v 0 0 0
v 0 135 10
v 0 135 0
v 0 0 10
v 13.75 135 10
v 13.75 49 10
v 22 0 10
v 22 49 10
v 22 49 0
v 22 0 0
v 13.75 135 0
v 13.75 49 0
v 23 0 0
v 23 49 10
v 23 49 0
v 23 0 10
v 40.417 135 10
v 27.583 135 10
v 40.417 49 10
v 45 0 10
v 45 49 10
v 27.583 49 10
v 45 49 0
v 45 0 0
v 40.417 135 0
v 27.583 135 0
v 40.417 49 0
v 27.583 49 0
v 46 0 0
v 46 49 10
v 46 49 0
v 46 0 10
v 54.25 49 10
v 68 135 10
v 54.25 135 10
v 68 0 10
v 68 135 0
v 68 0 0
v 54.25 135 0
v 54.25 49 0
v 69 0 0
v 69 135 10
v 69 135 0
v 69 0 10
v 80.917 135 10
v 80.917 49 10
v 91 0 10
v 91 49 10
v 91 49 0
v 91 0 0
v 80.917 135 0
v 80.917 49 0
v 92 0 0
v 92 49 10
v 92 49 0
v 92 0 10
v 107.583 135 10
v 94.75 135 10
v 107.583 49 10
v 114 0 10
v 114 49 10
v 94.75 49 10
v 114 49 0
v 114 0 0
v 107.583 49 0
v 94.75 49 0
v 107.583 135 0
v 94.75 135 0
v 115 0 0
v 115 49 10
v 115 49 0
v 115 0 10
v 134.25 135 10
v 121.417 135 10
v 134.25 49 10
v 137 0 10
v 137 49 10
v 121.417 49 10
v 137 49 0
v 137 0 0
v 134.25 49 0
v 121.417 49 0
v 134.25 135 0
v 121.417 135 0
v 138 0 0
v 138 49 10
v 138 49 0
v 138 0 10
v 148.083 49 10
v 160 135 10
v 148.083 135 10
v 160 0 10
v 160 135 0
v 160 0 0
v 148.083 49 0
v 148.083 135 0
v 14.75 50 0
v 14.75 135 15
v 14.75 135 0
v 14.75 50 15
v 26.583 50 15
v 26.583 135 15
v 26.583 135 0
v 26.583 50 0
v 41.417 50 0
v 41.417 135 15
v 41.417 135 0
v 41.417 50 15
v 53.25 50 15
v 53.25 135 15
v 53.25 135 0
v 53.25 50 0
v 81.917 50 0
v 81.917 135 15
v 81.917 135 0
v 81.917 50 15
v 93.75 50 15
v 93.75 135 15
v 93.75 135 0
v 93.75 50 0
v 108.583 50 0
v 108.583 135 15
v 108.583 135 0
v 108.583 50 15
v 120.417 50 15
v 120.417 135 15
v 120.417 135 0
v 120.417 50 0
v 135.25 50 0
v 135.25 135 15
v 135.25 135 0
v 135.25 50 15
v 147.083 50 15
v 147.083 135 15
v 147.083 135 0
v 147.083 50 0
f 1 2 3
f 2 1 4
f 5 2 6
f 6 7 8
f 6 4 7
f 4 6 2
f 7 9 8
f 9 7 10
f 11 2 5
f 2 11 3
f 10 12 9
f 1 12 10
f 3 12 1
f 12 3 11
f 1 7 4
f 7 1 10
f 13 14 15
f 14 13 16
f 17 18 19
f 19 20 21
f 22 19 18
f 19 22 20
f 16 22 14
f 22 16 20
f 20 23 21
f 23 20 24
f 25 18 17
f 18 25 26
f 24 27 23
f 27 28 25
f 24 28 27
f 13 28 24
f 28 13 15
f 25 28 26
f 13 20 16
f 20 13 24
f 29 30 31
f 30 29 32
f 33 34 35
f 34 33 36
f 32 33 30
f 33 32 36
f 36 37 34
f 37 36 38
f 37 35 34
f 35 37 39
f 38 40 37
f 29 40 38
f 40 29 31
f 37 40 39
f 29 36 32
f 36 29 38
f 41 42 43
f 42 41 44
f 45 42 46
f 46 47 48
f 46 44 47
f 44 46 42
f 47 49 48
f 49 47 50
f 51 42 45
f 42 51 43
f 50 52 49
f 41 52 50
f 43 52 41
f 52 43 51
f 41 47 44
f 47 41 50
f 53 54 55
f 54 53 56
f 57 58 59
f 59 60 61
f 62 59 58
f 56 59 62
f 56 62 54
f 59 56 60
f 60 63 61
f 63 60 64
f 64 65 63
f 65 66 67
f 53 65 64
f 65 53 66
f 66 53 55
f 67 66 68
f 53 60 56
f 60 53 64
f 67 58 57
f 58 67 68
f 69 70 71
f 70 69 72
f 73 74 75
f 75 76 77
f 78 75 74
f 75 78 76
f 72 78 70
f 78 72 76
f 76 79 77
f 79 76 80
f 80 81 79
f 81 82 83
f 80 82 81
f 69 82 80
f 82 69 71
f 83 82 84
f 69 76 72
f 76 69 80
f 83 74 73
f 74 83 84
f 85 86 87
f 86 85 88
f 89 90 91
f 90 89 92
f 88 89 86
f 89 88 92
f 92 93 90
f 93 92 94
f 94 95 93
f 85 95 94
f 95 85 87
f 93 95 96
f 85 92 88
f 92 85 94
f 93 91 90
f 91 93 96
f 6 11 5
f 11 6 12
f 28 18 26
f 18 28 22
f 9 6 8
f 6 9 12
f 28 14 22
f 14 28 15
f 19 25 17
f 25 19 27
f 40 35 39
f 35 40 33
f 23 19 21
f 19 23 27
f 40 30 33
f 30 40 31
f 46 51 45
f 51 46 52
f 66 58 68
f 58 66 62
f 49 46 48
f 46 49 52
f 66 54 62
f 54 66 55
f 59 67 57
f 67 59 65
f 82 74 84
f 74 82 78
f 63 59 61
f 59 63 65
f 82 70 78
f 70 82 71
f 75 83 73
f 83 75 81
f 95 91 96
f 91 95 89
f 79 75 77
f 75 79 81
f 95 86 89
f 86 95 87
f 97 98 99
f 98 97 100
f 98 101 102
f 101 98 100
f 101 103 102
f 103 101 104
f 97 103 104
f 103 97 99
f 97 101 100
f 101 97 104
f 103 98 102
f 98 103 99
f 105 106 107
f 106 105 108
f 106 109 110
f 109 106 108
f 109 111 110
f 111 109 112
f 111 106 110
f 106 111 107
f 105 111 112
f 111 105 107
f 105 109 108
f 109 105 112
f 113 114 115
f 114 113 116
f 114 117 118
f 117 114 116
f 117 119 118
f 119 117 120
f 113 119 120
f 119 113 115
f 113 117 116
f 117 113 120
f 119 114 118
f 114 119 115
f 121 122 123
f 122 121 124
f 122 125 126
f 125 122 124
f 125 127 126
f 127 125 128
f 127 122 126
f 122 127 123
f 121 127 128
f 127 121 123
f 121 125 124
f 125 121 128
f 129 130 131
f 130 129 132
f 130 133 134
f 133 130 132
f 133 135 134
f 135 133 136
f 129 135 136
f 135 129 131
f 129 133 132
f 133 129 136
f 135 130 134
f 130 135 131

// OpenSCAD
/* Piano Keyboard
 *
 * Author: Thiago Rosa (http://www.thiagorosa.com)
 * Project: KeyTita (https://github.com/thiagolr/keytita)
 * License: CC BY-SA 4.0 (https://creativecommons.org/licenses/by-sa/4.0)
 * 
 * Design: http://datagenetics.com/blog/may32016/index.html
 * 525|490|490|490|525|455|490|490|490|490|490|455
 *
 */

$WHITE_LENGTH = 135;
$WHITE_WIDTH = 22;
$WHITE_HEIGHT = 10;
$BLACK_LENGTH = 85;
$BLACK_HEIGHT = 15;
$SPACE_WIDTH = 1;
$OCTAVES = 1;
$INCLUDE_A0_B0 = false;
$INCLUDE_END_C = false;

$MIRRORED = false;
$KEY_COLOR_ALPHA = 1.0;

Piano();
//Piano61();
//Piano88();
   
module Piano(whiteLength = $WHITE_LENGTH, whiteWidth = $WHITE_WIDTH, whiteHeight = $WHITE_HEIGHT, blackLength = $BLACK_LENGTH, blackHeight = $BLACK_HEIGHT, spaceWidth = $SPACE_WIDTH, octaves = $OCTAVES, includeA0B0 = $INCLUDE_A0_B0, includeEndC = $INCLUDE_END_C) {
    
    baseWhiteWidth = 840;
    baseSizeA = 525;
    baseSizeB = 490;
    baseSizeC = 455;
    baseFactor = whiteWidth / baseWhiteWidth;
    
    sizeA = baseSizeA * baseFactor;
    sizeB = baseSizeB * baseFactor;
    sizeC = baseSizeC * baseFactor;
    sizeBSpaced = sizeB + spaceWidth;
    
    holeSizeOffset = 2;
    holeSizeX = sizeBSpaced;
    holeSizeY = blackLength + spaceWidth * 2;
    holeSizeZ = blackHeight + holeSizeOffset;     
    
    a0b0Width = includeA0B0 ? (2 * whiteWidth) + (2 * spaceWidth) : 0;
    octaveWidth = (7 * whiteWidth) + (7 * spaceWidth);
    blackWidth = sizeBSpaced - spaceWidth * 2;

    blackPositions = [
        sizeA * 1,
        sizeA * 1 + sizeB * 1 + sizeBSpaced * 1,
        sizeA * 2 + sizeB * 1 + sizeBSpaced * 2 + sizeC * 1 + spaceWidth,
        sizeA * 2 + sizeB * 2 + sizeBSpaced * 3 + sizeC * 1 + spaceWidth,
        sizeA * 2 + sizeB * 3 + sizeBSpaced * 4 + sizeC * 1 + spaceWidth
    ];
    
    difference() {
        union() {
            for (i = [0 : octaves - 1]) {
                for (j = [0 : 6]) {
                    posX = a0b0Width + i * octaveWidth + j * (whiteWidth + spaceWidth);                Key("white", posX, 0, 0, whiteWidth, whiteLength, whiteHeight);
                }            
            }      
        }
     
        for (i = [0 : octaves - 1]) {
            for (j = [0 : 4]) {
                posX = a0b0Width + i * octaveWidth + blackPositions[j];         
                posY = $MIRRORED ? -spaceWidth : whiteLength - blackLength - spaceWidth;
                posZ = -holeSizeOffset / 2;
                Key("white", posX, posY, posZ, holeSizeX, holeSizeY, holeSizeZ);  
            }
        }
    }

    for (i = [0 : octaves - 1]) {
        for (j = [0 : 4]) {
            posX = a0b0Width + i * octaveWidth + blackPositions[j] + (sizeBSpaced - blackWidth) / 2;
            posY = $MIRRORED ? 0 : whiteLength - blackLength;
            posZ = 0; 
            Key("black", posX, posY, posZ, blackWidth, blackLength, blackHeight);  
        }    
    }
    
    if (includeA0B0) {
        blackPosition = whiteWidth * 2 - sizeC - sizeBSpaced;
        
        difference() {
            union() {
                for (j = [0 : 1]) {
                    posX = j * (whiteWidth + spaceWidth);                    
                    Key("white", posX, 0, 0, whiteWidth, whiteLength, whiteHeight);
                }            
            } 
         
            posX = blackPosition;         
            posY = $MIRRORED ? -spaceWidth : whiteLength - blackLength - spaceWidth;
            posZ = -holeSizeOffset / 2;
            Key("white", posX, posY, posZ, holeSizeX, holeSizeY, holeSizeZ);              
        }
      
        posX = blackPosition + (sizeBSpaced - blackWidth) / 2;
        posY = $MIRRORED ? 0 : whiteLength - blackLength;
        posZ = 0;
        Key("black", posX, posY, posZ, blackWidth, blackLength, blackHeight);  
    }
    
    if (includeEndC) {
        posX = a0b0Width + octaves * octaveWidth; 
        Key("white", posX, 0, 0, whiteWidth, whiteLength, whiteHeight);
    }
}

module Key(colorKey, posX, posY, posZ, sizeX, sizeY, sizeZ) {
    translate([posX, posY, posZ])          
        color(colorKey, $KEY_COLOR_ALPHA)
            cube([sizeX, sizeY, sizeZ]);
}

module Piano61(whiteLength = $WHITE_LENGTH, whiteWidth = $WHITE_WIDTH, whiteHeight = $WHITE_HEIGHT, blackLength = $BLACK_LENGTH, blackHeight = $BLACK_HEIGHT, spaceWidth = $SPACE_WIDTH) {  
    
    Piano(whiteLength, whiteWidth, whiteHeight, blackLength, blackHeight, spaceWidth, octaves = 5, includeA0B0 = false, includeEndC = true);
    
}

module Piano88(whiteLength = $WHITE_LENGTH, whiteWidth = $WHITE_WIDTH, whiteHeight = $WHITE_HEIGHT, blackLength = $BLACK_LENGTH, blackHeight = $BLACK_HEIGHT, spaceWidth = $SPACE_WIDTH) {
    
    Piano(whiteLength, whiteWidth, whiteHeight, blackLength, blackHeight, spaceWidth, octaves = 7, includeA0B0 = true, includeEndC = true);
    
}
